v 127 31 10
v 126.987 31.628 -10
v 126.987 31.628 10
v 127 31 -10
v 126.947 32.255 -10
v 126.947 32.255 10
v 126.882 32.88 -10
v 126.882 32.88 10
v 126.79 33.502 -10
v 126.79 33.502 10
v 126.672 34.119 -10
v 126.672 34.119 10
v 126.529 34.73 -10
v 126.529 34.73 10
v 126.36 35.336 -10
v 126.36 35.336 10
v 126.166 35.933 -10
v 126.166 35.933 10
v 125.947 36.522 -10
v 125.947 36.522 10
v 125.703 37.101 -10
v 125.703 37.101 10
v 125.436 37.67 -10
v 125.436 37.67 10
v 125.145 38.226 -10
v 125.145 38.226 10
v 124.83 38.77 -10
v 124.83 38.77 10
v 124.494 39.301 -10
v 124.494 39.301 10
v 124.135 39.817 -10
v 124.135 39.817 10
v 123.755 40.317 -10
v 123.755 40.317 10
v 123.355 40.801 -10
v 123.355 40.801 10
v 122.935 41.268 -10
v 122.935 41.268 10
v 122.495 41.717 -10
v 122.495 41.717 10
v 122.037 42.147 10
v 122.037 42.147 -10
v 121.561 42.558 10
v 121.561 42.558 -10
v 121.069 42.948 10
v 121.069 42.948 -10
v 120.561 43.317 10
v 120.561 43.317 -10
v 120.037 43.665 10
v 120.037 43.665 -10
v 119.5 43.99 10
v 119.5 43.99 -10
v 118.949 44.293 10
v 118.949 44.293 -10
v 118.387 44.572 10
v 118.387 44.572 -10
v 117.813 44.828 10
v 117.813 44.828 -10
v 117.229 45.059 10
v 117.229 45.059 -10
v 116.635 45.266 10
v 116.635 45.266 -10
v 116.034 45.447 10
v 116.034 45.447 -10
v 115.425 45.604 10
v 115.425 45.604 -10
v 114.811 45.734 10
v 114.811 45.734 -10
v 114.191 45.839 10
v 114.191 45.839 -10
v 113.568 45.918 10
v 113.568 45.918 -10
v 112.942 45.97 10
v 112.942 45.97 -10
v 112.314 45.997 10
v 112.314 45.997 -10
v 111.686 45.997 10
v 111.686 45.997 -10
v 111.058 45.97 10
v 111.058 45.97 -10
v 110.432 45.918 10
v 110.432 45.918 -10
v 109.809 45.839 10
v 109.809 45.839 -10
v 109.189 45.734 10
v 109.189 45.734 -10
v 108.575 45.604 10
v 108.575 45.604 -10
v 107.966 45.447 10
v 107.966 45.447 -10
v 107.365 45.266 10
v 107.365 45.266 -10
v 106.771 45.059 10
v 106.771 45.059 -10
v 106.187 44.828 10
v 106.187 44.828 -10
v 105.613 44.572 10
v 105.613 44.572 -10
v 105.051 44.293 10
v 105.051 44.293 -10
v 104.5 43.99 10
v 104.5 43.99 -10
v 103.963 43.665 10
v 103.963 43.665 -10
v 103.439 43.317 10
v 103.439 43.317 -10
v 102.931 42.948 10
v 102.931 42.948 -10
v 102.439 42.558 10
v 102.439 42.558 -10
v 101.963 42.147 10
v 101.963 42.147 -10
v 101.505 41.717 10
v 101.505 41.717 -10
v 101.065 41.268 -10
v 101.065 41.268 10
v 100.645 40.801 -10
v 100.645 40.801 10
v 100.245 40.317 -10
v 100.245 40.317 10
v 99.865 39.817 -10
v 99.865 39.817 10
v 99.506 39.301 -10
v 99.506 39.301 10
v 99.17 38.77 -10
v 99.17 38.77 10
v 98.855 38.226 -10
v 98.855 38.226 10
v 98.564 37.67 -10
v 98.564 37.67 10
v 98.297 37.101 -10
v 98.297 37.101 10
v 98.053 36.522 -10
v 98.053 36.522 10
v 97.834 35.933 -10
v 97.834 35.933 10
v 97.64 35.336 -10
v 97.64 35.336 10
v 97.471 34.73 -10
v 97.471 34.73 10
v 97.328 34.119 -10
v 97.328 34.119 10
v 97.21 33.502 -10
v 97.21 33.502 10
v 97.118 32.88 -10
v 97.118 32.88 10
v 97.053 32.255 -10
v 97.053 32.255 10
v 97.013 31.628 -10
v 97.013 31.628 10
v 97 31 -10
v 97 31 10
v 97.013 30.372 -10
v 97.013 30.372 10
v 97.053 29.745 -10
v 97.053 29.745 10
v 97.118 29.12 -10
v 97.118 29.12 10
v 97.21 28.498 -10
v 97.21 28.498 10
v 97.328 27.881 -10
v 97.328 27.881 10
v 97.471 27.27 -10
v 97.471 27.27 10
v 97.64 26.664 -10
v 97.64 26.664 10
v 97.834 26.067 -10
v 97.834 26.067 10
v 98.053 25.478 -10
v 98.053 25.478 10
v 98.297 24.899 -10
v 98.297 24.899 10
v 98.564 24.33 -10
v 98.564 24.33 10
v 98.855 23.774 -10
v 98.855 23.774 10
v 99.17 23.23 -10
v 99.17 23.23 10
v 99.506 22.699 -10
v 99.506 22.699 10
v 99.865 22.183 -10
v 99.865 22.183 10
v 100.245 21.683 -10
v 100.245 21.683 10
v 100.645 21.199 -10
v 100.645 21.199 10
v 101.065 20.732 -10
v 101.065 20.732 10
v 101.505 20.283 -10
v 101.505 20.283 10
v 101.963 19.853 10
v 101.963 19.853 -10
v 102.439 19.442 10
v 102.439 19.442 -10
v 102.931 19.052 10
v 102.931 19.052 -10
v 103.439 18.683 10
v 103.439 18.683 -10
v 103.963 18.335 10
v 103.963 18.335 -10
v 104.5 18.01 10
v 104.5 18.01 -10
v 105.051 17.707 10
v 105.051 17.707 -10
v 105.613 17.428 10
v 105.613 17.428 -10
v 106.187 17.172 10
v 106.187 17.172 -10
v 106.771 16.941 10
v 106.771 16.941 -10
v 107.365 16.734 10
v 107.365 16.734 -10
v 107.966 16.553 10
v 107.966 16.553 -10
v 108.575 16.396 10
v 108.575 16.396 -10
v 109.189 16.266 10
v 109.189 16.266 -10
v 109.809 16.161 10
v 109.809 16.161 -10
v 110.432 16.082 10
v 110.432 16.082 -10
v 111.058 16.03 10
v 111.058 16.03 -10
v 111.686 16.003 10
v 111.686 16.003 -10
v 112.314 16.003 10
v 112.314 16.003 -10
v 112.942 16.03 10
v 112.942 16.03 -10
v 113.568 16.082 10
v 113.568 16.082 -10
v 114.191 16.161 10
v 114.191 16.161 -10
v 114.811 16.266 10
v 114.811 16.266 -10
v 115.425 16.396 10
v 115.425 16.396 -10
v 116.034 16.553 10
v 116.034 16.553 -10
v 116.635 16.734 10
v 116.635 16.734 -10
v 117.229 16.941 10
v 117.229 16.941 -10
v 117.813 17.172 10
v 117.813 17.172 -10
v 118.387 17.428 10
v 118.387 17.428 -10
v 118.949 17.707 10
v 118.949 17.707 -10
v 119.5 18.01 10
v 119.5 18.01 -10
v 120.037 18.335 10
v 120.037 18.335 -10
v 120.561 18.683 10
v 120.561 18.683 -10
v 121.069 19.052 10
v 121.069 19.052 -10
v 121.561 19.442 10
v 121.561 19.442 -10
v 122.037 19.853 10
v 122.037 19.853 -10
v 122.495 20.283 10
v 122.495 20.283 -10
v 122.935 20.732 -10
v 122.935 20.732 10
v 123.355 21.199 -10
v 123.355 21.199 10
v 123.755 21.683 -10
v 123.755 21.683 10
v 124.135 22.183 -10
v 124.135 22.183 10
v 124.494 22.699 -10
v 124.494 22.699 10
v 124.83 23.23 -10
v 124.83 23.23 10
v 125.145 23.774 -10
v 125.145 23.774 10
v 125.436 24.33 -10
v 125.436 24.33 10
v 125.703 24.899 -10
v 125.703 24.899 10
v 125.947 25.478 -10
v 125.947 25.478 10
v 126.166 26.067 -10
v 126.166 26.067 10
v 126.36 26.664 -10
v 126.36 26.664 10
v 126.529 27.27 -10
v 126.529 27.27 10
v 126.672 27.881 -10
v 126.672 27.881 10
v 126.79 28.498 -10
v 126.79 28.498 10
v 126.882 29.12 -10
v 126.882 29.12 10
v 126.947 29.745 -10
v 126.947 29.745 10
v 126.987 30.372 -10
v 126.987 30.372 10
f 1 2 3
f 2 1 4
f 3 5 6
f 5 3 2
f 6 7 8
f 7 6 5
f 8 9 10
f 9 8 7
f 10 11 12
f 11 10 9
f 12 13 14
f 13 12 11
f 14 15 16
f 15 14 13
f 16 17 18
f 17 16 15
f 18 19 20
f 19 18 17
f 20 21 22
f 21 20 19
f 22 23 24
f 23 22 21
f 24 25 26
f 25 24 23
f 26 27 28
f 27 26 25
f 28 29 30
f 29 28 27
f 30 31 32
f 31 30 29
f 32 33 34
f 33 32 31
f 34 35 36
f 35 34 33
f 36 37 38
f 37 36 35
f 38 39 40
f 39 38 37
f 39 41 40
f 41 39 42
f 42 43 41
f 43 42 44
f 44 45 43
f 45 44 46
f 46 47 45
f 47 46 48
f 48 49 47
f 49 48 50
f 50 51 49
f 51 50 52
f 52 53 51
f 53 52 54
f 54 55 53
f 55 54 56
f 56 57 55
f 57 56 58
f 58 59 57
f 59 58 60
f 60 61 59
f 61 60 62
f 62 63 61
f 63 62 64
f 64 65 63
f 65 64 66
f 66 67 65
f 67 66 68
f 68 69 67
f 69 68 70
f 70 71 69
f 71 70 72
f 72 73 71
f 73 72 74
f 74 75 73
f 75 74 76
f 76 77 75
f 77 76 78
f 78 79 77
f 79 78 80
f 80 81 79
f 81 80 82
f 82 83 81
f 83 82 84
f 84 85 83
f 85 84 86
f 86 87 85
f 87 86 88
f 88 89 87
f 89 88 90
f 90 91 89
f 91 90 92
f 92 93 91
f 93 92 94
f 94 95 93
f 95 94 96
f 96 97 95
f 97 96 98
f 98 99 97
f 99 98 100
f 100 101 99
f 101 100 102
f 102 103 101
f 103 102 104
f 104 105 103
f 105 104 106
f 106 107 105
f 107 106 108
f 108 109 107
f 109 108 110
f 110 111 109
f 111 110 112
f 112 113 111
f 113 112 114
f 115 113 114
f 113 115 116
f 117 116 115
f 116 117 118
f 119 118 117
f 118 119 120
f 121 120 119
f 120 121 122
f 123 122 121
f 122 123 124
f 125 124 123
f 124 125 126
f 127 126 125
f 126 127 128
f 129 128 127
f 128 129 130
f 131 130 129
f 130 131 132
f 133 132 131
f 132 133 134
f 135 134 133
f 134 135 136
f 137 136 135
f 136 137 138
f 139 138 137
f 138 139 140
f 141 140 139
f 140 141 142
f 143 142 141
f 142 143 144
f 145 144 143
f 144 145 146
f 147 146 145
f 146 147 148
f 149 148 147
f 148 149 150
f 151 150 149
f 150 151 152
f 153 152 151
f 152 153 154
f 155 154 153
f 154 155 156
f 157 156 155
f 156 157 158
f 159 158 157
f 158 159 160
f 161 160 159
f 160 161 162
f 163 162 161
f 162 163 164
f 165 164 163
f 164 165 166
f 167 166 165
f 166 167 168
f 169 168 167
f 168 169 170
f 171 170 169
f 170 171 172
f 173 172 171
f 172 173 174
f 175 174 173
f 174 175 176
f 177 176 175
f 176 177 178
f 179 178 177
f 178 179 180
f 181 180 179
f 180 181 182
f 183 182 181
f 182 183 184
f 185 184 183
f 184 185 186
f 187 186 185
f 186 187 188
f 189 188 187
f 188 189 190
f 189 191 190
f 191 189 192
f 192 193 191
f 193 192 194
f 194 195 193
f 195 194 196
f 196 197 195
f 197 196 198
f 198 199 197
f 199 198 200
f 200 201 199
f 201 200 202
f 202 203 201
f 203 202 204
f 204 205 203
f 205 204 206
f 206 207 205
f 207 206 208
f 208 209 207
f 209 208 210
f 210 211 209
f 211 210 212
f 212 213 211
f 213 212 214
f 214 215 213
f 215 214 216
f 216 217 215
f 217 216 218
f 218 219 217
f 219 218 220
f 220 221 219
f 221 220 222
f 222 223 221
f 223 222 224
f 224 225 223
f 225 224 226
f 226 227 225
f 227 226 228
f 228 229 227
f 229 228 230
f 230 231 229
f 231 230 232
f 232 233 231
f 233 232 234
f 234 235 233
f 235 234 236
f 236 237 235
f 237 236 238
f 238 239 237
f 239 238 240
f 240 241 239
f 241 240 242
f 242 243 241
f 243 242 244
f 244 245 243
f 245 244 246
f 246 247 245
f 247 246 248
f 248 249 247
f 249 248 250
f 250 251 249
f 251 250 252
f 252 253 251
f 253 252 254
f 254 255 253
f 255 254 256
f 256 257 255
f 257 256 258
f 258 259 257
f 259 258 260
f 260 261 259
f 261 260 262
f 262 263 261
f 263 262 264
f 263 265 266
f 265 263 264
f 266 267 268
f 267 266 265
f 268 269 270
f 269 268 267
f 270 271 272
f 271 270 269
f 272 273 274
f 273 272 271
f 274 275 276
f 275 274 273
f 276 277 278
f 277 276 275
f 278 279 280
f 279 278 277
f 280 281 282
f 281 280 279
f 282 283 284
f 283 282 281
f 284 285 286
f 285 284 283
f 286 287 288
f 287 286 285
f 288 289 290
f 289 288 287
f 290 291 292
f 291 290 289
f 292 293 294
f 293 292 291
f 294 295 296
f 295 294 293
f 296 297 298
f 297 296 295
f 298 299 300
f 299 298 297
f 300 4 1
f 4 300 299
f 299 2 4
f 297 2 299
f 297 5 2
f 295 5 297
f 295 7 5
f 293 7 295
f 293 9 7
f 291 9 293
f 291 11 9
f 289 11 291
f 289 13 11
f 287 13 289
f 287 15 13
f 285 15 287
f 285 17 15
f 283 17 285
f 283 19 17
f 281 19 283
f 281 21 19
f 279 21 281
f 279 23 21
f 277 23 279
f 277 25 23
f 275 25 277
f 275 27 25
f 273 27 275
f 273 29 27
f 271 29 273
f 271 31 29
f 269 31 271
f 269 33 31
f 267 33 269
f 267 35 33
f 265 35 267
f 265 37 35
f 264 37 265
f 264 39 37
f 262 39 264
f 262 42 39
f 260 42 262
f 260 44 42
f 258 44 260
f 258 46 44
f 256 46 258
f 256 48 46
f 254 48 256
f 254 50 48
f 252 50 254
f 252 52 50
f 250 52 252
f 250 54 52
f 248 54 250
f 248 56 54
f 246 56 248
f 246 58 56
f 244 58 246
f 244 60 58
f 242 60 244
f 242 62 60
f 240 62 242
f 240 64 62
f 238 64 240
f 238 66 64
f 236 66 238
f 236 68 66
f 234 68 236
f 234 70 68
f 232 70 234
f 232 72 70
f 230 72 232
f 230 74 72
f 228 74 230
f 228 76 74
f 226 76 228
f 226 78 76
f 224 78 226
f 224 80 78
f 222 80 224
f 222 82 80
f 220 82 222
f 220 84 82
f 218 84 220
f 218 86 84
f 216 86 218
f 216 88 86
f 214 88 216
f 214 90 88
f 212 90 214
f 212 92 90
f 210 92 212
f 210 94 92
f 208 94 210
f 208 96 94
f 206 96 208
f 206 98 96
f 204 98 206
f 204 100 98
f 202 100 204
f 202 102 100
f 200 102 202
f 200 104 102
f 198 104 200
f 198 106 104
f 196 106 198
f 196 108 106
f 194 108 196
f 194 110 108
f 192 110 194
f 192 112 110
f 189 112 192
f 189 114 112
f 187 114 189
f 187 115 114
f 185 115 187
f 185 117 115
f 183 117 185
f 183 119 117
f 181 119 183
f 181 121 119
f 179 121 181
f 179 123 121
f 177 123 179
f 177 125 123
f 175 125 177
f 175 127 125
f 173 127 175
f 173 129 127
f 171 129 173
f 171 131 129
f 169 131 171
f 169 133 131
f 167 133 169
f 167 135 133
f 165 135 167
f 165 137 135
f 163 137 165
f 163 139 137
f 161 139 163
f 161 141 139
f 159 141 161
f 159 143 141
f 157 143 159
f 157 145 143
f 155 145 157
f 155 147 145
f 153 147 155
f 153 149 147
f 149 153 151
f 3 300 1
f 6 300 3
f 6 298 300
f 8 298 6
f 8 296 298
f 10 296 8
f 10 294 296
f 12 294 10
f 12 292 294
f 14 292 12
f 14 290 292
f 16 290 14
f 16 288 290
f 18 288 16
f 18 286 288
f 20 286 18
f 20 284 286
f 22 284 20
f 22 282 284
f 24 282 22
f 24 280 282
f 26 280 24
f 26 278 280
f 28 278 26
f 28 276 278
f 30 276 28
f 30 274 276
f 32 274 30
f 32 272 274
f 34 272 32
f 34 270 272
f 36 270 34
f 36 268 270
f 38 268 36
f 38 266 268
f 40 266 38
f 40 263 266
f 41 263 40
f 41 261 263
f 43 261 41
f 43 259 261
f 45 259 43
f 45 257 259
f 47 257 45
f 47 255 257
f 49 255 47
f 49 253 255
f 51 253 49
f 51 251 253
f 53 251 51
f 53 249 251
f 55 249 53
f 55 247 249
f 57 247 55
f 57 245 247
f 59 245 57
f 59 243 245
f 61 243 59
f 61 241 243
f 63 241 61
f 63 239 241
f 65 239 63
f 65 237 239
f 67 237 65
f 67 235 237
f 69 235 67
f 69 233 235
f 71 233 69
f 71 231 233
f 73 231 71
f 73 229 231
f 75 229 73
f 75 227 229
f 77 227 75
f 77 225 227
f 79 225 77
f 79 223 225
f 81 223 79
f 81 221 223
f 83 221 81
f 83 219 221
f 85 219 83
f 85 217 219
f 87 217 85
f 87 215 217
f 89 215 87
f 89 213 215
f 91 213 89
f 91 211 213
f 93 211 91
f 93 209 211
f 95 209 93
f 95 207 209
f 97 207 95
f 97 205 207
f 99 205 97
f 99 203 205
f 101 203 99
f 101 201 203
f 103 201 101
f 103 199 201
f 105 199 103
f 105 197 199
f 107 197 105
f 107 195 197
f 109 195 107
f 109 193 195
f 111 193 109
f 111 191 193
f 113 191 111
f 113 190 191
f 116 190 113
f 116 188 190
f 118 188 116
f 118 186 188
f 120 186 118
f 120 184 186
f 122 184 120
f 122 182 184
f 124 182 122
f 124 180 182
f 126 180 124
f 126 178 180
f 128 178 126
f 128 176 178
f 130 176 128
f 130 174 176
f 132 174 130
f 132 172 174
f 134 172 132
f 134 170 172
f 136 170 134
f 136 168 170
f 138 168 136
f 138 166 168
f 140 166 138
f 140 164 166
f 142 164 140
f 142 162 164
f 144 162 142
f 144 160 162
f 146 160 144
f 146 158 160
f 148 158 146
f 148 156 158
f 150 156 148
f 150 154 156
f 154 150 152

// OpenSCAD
$fn = 150;

translate([112, 31, 0])
rotate([0, 0, 0])
cylinder(20, 15, 15, true);
